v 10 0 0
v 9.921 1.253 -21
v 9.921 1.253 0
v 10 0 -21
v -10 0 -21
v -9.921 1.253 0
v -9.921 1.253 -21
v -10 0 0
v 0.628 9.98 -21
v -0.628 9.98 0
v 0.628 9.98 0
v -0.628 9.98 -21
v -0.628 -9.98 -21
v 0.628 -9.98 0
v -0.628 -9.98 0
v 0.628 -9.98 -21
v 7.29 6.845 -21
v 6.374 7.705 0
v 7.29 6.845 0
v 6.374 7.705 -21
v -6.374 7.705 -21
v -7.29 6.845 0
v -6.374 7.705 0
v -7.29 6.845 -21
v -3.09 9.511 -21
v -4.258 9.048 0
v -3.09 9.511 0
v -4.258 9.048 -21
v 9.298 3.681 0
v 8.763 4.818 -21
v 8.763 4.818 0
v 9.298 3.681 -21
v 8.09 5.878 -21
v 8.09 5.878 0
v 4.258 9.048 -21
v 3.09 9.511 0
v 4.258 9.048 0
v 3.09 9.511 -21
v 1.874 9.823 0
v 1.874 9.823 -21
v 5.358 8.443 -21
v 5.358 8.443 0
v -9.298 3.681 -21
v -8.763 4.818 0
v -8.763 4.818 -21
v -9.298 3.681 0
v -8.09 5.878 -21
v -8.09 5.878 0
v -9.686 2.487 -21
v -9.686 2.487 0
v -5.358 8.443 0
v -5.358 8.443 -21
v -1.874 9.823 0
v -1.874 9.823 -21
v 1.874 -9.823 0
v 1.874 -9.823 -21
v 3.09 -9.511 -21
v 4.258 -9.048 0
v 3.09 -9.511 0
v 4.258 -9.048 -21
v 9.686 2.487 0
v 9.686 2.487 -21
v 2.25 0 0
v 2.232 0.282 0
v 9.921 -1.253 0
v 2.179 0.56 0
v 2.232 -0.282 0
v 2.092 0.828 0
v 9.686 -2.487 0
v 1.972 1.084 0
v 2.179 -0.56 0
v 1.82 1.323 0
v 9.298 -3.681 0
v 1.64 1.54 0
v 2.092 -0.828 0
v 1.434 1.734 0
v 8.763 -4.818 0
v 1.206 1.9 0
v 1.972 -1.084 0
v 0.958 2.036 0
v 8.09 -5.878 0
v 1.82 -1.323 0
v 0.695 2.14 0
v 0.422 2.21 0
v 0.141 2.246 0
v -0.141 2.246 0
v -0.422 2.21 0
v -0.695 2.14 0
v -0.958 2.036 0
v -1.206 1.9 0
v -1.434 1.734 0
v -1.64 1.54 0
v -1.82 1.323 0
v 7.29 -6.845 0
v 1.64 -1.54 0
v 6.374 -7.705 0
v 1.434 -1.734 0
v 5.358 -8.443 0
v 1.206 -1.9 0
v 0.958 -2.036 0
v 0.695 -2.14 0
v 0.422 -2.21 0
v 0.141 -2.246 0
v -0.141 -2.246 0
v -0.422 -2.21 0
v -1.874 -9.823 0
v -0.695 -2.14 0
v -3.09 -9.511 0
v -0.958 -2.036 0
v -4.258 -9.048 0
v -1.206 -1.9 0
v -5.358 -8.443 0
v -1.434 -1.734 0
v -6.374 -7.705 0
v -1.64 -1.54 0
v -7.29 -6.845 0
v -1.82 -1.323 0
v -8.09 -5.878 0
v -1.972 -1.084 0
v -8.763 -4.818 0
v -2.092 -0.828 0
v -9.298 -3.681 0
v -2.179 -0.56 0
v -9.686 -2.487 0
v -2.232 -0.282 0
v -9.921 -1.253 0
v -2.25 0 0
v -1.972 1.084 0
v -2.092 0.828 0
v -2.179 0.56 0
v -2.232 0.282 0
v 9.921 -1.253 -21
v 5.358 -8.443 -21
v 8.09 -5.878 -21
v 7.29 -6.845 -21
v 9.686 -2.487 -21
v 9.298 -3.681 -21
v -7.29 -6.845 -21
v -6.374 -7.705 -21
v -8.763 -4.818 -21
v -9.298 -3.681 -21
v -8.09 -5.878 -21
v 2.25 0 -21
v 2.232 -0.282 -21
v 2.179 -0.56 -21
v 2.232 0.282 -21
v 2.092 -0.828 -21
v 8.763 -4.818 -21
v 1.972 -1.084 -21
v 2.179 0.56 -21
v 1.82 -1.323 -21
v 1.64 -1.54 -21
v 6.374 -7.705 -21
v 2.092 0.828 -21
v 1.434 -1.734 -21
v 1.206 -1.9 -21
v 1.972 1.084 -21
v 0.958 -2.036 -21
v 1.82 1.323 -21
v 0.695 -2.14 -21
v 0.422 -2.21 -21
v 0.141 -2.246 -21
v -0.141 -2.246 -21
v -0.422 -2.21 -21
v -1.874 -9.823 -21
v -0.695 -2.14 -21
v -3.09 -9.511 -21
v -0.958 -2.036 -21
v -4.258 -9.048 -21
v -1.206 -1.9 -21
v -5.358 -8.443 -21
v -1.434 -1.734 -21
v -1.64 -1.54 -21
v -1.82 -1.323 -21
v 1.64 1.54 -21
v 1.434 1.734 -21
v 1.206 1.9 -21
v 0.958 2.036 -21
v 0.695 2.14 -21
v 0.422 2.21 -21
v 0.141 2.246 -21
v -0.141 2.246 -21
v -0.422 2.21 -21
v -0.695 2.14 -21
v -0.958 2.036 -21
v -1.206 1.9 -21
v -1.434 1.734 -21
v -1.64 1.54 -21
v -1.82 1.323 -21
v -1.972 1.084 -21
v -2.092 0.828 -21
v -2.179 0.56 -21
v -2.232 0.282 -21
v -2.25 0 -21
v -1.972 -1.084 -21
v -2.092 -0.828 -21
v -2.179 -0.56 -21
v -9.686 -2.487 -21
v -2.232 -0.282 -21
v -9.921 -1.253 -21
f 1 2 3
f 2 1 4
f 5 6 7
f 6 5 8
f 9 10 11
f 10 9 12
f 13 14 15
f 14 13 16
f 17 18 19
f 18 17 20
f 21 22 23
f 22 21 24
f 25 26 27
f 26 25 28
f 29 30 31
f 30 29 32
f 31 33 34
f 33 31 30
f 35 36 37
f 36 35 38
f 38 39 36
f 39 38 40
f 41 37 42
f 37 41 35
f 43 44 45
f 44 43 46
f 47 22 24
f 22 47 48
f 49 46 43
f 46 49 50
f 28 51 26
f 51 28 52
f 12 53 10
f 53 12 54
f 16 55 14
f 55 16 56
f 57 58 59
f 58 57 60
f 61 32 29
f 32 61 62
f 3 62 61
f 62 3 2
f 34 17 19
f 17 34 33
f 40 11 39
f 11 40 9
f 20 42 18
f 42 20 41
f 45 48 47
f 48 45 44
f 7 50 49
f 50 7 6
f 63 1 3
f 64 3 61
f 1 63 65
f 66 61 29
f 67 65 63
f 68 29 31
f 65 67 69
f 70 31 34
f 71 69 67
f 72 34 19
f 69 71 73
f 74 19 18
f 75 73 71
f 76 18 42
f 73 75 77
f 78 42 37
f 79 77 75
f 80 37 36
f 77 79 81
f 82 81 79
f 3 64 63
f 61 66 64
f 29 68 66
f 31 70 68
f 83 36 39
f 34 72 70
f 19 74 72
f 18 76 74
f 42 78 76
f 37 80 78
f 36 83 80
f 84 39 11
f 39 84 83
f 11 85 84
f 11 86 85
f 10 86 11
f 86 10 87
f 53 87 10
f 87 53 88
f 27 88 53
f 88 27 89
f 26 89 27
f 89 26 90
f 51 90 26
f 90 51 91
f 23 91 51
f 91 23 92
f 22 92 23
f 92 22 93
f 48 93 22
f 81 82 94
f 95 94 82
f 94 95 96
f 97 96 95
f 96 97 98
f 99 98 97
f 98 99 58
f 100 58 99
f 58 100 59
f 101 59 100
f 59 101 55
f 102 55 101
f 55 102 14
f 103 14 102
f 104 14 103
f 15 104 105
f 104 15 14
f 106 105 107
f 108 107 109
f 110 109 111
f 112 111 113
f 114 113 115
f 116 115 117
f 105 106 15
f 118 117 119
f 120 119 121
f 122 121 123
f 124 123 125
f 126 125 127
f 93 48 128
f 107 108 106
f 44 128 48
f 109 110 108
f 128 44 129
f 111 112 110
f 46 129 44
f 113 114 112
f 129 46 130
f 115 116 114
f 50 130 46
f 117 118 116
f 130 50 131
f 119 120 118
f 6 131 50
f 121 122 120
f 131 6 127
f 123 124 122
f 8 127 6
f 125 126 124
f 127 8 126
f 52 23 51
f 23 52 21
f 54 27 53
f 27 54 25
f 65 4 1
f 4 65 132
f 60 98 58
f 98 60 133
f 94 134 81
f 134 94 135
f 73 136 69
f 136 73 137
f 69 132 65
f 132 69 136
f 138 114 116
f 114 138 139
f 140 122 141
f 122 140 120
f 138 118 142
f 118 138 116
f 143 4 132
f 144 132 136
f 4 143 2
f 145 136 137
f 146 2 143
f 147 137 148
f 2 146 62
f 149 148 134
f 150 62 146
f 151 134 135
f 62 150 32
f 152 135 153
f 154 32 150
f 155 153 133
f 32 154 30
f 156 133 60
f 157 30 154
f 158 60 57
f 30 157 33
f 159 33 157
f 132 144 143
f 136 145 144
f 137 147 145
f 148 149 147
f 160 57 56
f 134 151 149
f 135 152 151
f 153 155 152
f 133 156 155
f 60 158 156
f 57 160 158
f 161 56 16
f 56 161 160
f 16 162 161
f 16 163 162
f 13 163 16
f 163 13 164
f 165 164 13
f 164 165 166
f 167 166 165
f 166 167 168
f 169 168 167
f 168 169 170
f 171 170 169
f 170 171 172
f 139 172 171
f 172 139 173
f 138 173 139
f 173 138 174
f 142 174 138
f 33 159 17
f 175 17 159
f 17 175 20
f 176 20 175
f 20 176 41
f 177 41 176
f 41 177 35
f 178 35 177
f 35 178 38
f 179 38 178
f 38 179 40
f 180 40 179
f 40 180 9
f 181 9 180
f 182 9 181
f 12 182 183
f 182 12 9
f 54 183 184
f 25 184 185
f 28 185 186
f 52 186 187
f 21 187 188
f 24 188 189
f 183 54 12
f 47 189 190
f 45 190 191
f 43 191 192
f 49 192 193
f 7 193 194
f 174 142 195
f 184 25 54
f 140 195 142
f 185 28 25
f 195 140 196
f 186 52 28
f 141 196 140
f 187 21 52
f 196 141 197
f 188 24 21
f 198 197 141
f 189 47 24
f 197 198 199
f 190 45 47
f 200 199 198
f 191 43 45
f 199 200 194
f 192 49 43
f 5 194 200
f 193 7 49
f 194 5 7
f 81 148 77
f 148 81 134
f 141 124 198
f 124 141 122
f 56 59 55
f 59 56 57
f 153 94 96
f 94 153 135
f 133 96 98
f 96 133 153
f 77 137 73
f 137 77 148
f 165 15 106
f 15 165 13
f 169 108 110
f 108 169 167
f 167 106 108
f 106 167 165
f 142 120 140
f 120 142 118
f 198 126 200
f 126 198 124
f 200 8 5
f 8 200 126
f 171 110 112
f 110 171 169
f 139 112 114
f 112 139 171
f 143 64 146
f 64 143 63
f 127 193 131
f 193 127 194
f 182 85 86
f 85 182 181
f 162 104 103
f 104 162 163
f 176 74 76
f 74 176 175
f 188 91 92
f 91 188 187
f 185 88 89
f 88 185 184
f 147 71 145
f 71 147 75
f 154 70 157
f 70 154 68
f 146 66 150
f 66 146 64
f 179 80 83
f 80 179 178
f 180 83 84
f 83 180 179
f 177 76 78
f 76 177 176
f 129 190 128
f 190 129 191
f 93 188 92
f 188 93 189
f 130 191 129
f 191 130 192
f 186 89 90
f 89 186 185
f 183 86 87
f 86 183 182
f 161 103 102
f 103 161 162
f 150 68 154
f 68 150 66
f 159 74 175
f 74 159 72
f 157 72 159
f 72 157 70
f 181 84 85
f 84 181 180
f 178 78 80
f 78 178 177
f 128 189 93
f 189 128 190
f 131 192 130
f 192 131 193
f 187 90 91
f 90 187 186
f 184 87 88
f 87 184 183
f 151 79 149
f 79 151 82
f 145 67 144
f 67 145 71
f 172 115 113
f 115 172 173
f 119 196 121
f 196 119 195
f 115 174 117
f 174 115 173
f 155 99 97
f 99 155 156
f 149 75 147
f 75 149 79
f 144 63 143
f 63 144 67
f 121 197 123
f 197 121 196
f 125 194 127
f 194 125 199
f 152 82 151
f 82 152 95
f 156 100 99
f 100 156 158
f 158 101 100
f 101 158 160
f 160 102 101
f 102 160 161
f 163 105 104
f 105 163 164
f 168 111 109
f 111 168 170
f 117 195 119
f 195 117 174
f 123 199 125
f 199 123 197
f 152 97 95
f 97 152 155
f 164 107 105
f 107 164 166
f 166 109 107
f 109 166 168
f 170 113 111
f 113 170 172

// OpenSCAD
$fn = 50;


difference() {
	union() {
		translate(v = [0, 0, -21.0000000000]) {
			cylinder(h = 21, r = 10.0000000000);
		}
		cylinder(h = 0, r = 19.0000000000);
	}
	union() {
		#translate(v = [0, 0, -21]) {
			cylinder(h = 21, r = 2.2500000000);
		}
	}
}
